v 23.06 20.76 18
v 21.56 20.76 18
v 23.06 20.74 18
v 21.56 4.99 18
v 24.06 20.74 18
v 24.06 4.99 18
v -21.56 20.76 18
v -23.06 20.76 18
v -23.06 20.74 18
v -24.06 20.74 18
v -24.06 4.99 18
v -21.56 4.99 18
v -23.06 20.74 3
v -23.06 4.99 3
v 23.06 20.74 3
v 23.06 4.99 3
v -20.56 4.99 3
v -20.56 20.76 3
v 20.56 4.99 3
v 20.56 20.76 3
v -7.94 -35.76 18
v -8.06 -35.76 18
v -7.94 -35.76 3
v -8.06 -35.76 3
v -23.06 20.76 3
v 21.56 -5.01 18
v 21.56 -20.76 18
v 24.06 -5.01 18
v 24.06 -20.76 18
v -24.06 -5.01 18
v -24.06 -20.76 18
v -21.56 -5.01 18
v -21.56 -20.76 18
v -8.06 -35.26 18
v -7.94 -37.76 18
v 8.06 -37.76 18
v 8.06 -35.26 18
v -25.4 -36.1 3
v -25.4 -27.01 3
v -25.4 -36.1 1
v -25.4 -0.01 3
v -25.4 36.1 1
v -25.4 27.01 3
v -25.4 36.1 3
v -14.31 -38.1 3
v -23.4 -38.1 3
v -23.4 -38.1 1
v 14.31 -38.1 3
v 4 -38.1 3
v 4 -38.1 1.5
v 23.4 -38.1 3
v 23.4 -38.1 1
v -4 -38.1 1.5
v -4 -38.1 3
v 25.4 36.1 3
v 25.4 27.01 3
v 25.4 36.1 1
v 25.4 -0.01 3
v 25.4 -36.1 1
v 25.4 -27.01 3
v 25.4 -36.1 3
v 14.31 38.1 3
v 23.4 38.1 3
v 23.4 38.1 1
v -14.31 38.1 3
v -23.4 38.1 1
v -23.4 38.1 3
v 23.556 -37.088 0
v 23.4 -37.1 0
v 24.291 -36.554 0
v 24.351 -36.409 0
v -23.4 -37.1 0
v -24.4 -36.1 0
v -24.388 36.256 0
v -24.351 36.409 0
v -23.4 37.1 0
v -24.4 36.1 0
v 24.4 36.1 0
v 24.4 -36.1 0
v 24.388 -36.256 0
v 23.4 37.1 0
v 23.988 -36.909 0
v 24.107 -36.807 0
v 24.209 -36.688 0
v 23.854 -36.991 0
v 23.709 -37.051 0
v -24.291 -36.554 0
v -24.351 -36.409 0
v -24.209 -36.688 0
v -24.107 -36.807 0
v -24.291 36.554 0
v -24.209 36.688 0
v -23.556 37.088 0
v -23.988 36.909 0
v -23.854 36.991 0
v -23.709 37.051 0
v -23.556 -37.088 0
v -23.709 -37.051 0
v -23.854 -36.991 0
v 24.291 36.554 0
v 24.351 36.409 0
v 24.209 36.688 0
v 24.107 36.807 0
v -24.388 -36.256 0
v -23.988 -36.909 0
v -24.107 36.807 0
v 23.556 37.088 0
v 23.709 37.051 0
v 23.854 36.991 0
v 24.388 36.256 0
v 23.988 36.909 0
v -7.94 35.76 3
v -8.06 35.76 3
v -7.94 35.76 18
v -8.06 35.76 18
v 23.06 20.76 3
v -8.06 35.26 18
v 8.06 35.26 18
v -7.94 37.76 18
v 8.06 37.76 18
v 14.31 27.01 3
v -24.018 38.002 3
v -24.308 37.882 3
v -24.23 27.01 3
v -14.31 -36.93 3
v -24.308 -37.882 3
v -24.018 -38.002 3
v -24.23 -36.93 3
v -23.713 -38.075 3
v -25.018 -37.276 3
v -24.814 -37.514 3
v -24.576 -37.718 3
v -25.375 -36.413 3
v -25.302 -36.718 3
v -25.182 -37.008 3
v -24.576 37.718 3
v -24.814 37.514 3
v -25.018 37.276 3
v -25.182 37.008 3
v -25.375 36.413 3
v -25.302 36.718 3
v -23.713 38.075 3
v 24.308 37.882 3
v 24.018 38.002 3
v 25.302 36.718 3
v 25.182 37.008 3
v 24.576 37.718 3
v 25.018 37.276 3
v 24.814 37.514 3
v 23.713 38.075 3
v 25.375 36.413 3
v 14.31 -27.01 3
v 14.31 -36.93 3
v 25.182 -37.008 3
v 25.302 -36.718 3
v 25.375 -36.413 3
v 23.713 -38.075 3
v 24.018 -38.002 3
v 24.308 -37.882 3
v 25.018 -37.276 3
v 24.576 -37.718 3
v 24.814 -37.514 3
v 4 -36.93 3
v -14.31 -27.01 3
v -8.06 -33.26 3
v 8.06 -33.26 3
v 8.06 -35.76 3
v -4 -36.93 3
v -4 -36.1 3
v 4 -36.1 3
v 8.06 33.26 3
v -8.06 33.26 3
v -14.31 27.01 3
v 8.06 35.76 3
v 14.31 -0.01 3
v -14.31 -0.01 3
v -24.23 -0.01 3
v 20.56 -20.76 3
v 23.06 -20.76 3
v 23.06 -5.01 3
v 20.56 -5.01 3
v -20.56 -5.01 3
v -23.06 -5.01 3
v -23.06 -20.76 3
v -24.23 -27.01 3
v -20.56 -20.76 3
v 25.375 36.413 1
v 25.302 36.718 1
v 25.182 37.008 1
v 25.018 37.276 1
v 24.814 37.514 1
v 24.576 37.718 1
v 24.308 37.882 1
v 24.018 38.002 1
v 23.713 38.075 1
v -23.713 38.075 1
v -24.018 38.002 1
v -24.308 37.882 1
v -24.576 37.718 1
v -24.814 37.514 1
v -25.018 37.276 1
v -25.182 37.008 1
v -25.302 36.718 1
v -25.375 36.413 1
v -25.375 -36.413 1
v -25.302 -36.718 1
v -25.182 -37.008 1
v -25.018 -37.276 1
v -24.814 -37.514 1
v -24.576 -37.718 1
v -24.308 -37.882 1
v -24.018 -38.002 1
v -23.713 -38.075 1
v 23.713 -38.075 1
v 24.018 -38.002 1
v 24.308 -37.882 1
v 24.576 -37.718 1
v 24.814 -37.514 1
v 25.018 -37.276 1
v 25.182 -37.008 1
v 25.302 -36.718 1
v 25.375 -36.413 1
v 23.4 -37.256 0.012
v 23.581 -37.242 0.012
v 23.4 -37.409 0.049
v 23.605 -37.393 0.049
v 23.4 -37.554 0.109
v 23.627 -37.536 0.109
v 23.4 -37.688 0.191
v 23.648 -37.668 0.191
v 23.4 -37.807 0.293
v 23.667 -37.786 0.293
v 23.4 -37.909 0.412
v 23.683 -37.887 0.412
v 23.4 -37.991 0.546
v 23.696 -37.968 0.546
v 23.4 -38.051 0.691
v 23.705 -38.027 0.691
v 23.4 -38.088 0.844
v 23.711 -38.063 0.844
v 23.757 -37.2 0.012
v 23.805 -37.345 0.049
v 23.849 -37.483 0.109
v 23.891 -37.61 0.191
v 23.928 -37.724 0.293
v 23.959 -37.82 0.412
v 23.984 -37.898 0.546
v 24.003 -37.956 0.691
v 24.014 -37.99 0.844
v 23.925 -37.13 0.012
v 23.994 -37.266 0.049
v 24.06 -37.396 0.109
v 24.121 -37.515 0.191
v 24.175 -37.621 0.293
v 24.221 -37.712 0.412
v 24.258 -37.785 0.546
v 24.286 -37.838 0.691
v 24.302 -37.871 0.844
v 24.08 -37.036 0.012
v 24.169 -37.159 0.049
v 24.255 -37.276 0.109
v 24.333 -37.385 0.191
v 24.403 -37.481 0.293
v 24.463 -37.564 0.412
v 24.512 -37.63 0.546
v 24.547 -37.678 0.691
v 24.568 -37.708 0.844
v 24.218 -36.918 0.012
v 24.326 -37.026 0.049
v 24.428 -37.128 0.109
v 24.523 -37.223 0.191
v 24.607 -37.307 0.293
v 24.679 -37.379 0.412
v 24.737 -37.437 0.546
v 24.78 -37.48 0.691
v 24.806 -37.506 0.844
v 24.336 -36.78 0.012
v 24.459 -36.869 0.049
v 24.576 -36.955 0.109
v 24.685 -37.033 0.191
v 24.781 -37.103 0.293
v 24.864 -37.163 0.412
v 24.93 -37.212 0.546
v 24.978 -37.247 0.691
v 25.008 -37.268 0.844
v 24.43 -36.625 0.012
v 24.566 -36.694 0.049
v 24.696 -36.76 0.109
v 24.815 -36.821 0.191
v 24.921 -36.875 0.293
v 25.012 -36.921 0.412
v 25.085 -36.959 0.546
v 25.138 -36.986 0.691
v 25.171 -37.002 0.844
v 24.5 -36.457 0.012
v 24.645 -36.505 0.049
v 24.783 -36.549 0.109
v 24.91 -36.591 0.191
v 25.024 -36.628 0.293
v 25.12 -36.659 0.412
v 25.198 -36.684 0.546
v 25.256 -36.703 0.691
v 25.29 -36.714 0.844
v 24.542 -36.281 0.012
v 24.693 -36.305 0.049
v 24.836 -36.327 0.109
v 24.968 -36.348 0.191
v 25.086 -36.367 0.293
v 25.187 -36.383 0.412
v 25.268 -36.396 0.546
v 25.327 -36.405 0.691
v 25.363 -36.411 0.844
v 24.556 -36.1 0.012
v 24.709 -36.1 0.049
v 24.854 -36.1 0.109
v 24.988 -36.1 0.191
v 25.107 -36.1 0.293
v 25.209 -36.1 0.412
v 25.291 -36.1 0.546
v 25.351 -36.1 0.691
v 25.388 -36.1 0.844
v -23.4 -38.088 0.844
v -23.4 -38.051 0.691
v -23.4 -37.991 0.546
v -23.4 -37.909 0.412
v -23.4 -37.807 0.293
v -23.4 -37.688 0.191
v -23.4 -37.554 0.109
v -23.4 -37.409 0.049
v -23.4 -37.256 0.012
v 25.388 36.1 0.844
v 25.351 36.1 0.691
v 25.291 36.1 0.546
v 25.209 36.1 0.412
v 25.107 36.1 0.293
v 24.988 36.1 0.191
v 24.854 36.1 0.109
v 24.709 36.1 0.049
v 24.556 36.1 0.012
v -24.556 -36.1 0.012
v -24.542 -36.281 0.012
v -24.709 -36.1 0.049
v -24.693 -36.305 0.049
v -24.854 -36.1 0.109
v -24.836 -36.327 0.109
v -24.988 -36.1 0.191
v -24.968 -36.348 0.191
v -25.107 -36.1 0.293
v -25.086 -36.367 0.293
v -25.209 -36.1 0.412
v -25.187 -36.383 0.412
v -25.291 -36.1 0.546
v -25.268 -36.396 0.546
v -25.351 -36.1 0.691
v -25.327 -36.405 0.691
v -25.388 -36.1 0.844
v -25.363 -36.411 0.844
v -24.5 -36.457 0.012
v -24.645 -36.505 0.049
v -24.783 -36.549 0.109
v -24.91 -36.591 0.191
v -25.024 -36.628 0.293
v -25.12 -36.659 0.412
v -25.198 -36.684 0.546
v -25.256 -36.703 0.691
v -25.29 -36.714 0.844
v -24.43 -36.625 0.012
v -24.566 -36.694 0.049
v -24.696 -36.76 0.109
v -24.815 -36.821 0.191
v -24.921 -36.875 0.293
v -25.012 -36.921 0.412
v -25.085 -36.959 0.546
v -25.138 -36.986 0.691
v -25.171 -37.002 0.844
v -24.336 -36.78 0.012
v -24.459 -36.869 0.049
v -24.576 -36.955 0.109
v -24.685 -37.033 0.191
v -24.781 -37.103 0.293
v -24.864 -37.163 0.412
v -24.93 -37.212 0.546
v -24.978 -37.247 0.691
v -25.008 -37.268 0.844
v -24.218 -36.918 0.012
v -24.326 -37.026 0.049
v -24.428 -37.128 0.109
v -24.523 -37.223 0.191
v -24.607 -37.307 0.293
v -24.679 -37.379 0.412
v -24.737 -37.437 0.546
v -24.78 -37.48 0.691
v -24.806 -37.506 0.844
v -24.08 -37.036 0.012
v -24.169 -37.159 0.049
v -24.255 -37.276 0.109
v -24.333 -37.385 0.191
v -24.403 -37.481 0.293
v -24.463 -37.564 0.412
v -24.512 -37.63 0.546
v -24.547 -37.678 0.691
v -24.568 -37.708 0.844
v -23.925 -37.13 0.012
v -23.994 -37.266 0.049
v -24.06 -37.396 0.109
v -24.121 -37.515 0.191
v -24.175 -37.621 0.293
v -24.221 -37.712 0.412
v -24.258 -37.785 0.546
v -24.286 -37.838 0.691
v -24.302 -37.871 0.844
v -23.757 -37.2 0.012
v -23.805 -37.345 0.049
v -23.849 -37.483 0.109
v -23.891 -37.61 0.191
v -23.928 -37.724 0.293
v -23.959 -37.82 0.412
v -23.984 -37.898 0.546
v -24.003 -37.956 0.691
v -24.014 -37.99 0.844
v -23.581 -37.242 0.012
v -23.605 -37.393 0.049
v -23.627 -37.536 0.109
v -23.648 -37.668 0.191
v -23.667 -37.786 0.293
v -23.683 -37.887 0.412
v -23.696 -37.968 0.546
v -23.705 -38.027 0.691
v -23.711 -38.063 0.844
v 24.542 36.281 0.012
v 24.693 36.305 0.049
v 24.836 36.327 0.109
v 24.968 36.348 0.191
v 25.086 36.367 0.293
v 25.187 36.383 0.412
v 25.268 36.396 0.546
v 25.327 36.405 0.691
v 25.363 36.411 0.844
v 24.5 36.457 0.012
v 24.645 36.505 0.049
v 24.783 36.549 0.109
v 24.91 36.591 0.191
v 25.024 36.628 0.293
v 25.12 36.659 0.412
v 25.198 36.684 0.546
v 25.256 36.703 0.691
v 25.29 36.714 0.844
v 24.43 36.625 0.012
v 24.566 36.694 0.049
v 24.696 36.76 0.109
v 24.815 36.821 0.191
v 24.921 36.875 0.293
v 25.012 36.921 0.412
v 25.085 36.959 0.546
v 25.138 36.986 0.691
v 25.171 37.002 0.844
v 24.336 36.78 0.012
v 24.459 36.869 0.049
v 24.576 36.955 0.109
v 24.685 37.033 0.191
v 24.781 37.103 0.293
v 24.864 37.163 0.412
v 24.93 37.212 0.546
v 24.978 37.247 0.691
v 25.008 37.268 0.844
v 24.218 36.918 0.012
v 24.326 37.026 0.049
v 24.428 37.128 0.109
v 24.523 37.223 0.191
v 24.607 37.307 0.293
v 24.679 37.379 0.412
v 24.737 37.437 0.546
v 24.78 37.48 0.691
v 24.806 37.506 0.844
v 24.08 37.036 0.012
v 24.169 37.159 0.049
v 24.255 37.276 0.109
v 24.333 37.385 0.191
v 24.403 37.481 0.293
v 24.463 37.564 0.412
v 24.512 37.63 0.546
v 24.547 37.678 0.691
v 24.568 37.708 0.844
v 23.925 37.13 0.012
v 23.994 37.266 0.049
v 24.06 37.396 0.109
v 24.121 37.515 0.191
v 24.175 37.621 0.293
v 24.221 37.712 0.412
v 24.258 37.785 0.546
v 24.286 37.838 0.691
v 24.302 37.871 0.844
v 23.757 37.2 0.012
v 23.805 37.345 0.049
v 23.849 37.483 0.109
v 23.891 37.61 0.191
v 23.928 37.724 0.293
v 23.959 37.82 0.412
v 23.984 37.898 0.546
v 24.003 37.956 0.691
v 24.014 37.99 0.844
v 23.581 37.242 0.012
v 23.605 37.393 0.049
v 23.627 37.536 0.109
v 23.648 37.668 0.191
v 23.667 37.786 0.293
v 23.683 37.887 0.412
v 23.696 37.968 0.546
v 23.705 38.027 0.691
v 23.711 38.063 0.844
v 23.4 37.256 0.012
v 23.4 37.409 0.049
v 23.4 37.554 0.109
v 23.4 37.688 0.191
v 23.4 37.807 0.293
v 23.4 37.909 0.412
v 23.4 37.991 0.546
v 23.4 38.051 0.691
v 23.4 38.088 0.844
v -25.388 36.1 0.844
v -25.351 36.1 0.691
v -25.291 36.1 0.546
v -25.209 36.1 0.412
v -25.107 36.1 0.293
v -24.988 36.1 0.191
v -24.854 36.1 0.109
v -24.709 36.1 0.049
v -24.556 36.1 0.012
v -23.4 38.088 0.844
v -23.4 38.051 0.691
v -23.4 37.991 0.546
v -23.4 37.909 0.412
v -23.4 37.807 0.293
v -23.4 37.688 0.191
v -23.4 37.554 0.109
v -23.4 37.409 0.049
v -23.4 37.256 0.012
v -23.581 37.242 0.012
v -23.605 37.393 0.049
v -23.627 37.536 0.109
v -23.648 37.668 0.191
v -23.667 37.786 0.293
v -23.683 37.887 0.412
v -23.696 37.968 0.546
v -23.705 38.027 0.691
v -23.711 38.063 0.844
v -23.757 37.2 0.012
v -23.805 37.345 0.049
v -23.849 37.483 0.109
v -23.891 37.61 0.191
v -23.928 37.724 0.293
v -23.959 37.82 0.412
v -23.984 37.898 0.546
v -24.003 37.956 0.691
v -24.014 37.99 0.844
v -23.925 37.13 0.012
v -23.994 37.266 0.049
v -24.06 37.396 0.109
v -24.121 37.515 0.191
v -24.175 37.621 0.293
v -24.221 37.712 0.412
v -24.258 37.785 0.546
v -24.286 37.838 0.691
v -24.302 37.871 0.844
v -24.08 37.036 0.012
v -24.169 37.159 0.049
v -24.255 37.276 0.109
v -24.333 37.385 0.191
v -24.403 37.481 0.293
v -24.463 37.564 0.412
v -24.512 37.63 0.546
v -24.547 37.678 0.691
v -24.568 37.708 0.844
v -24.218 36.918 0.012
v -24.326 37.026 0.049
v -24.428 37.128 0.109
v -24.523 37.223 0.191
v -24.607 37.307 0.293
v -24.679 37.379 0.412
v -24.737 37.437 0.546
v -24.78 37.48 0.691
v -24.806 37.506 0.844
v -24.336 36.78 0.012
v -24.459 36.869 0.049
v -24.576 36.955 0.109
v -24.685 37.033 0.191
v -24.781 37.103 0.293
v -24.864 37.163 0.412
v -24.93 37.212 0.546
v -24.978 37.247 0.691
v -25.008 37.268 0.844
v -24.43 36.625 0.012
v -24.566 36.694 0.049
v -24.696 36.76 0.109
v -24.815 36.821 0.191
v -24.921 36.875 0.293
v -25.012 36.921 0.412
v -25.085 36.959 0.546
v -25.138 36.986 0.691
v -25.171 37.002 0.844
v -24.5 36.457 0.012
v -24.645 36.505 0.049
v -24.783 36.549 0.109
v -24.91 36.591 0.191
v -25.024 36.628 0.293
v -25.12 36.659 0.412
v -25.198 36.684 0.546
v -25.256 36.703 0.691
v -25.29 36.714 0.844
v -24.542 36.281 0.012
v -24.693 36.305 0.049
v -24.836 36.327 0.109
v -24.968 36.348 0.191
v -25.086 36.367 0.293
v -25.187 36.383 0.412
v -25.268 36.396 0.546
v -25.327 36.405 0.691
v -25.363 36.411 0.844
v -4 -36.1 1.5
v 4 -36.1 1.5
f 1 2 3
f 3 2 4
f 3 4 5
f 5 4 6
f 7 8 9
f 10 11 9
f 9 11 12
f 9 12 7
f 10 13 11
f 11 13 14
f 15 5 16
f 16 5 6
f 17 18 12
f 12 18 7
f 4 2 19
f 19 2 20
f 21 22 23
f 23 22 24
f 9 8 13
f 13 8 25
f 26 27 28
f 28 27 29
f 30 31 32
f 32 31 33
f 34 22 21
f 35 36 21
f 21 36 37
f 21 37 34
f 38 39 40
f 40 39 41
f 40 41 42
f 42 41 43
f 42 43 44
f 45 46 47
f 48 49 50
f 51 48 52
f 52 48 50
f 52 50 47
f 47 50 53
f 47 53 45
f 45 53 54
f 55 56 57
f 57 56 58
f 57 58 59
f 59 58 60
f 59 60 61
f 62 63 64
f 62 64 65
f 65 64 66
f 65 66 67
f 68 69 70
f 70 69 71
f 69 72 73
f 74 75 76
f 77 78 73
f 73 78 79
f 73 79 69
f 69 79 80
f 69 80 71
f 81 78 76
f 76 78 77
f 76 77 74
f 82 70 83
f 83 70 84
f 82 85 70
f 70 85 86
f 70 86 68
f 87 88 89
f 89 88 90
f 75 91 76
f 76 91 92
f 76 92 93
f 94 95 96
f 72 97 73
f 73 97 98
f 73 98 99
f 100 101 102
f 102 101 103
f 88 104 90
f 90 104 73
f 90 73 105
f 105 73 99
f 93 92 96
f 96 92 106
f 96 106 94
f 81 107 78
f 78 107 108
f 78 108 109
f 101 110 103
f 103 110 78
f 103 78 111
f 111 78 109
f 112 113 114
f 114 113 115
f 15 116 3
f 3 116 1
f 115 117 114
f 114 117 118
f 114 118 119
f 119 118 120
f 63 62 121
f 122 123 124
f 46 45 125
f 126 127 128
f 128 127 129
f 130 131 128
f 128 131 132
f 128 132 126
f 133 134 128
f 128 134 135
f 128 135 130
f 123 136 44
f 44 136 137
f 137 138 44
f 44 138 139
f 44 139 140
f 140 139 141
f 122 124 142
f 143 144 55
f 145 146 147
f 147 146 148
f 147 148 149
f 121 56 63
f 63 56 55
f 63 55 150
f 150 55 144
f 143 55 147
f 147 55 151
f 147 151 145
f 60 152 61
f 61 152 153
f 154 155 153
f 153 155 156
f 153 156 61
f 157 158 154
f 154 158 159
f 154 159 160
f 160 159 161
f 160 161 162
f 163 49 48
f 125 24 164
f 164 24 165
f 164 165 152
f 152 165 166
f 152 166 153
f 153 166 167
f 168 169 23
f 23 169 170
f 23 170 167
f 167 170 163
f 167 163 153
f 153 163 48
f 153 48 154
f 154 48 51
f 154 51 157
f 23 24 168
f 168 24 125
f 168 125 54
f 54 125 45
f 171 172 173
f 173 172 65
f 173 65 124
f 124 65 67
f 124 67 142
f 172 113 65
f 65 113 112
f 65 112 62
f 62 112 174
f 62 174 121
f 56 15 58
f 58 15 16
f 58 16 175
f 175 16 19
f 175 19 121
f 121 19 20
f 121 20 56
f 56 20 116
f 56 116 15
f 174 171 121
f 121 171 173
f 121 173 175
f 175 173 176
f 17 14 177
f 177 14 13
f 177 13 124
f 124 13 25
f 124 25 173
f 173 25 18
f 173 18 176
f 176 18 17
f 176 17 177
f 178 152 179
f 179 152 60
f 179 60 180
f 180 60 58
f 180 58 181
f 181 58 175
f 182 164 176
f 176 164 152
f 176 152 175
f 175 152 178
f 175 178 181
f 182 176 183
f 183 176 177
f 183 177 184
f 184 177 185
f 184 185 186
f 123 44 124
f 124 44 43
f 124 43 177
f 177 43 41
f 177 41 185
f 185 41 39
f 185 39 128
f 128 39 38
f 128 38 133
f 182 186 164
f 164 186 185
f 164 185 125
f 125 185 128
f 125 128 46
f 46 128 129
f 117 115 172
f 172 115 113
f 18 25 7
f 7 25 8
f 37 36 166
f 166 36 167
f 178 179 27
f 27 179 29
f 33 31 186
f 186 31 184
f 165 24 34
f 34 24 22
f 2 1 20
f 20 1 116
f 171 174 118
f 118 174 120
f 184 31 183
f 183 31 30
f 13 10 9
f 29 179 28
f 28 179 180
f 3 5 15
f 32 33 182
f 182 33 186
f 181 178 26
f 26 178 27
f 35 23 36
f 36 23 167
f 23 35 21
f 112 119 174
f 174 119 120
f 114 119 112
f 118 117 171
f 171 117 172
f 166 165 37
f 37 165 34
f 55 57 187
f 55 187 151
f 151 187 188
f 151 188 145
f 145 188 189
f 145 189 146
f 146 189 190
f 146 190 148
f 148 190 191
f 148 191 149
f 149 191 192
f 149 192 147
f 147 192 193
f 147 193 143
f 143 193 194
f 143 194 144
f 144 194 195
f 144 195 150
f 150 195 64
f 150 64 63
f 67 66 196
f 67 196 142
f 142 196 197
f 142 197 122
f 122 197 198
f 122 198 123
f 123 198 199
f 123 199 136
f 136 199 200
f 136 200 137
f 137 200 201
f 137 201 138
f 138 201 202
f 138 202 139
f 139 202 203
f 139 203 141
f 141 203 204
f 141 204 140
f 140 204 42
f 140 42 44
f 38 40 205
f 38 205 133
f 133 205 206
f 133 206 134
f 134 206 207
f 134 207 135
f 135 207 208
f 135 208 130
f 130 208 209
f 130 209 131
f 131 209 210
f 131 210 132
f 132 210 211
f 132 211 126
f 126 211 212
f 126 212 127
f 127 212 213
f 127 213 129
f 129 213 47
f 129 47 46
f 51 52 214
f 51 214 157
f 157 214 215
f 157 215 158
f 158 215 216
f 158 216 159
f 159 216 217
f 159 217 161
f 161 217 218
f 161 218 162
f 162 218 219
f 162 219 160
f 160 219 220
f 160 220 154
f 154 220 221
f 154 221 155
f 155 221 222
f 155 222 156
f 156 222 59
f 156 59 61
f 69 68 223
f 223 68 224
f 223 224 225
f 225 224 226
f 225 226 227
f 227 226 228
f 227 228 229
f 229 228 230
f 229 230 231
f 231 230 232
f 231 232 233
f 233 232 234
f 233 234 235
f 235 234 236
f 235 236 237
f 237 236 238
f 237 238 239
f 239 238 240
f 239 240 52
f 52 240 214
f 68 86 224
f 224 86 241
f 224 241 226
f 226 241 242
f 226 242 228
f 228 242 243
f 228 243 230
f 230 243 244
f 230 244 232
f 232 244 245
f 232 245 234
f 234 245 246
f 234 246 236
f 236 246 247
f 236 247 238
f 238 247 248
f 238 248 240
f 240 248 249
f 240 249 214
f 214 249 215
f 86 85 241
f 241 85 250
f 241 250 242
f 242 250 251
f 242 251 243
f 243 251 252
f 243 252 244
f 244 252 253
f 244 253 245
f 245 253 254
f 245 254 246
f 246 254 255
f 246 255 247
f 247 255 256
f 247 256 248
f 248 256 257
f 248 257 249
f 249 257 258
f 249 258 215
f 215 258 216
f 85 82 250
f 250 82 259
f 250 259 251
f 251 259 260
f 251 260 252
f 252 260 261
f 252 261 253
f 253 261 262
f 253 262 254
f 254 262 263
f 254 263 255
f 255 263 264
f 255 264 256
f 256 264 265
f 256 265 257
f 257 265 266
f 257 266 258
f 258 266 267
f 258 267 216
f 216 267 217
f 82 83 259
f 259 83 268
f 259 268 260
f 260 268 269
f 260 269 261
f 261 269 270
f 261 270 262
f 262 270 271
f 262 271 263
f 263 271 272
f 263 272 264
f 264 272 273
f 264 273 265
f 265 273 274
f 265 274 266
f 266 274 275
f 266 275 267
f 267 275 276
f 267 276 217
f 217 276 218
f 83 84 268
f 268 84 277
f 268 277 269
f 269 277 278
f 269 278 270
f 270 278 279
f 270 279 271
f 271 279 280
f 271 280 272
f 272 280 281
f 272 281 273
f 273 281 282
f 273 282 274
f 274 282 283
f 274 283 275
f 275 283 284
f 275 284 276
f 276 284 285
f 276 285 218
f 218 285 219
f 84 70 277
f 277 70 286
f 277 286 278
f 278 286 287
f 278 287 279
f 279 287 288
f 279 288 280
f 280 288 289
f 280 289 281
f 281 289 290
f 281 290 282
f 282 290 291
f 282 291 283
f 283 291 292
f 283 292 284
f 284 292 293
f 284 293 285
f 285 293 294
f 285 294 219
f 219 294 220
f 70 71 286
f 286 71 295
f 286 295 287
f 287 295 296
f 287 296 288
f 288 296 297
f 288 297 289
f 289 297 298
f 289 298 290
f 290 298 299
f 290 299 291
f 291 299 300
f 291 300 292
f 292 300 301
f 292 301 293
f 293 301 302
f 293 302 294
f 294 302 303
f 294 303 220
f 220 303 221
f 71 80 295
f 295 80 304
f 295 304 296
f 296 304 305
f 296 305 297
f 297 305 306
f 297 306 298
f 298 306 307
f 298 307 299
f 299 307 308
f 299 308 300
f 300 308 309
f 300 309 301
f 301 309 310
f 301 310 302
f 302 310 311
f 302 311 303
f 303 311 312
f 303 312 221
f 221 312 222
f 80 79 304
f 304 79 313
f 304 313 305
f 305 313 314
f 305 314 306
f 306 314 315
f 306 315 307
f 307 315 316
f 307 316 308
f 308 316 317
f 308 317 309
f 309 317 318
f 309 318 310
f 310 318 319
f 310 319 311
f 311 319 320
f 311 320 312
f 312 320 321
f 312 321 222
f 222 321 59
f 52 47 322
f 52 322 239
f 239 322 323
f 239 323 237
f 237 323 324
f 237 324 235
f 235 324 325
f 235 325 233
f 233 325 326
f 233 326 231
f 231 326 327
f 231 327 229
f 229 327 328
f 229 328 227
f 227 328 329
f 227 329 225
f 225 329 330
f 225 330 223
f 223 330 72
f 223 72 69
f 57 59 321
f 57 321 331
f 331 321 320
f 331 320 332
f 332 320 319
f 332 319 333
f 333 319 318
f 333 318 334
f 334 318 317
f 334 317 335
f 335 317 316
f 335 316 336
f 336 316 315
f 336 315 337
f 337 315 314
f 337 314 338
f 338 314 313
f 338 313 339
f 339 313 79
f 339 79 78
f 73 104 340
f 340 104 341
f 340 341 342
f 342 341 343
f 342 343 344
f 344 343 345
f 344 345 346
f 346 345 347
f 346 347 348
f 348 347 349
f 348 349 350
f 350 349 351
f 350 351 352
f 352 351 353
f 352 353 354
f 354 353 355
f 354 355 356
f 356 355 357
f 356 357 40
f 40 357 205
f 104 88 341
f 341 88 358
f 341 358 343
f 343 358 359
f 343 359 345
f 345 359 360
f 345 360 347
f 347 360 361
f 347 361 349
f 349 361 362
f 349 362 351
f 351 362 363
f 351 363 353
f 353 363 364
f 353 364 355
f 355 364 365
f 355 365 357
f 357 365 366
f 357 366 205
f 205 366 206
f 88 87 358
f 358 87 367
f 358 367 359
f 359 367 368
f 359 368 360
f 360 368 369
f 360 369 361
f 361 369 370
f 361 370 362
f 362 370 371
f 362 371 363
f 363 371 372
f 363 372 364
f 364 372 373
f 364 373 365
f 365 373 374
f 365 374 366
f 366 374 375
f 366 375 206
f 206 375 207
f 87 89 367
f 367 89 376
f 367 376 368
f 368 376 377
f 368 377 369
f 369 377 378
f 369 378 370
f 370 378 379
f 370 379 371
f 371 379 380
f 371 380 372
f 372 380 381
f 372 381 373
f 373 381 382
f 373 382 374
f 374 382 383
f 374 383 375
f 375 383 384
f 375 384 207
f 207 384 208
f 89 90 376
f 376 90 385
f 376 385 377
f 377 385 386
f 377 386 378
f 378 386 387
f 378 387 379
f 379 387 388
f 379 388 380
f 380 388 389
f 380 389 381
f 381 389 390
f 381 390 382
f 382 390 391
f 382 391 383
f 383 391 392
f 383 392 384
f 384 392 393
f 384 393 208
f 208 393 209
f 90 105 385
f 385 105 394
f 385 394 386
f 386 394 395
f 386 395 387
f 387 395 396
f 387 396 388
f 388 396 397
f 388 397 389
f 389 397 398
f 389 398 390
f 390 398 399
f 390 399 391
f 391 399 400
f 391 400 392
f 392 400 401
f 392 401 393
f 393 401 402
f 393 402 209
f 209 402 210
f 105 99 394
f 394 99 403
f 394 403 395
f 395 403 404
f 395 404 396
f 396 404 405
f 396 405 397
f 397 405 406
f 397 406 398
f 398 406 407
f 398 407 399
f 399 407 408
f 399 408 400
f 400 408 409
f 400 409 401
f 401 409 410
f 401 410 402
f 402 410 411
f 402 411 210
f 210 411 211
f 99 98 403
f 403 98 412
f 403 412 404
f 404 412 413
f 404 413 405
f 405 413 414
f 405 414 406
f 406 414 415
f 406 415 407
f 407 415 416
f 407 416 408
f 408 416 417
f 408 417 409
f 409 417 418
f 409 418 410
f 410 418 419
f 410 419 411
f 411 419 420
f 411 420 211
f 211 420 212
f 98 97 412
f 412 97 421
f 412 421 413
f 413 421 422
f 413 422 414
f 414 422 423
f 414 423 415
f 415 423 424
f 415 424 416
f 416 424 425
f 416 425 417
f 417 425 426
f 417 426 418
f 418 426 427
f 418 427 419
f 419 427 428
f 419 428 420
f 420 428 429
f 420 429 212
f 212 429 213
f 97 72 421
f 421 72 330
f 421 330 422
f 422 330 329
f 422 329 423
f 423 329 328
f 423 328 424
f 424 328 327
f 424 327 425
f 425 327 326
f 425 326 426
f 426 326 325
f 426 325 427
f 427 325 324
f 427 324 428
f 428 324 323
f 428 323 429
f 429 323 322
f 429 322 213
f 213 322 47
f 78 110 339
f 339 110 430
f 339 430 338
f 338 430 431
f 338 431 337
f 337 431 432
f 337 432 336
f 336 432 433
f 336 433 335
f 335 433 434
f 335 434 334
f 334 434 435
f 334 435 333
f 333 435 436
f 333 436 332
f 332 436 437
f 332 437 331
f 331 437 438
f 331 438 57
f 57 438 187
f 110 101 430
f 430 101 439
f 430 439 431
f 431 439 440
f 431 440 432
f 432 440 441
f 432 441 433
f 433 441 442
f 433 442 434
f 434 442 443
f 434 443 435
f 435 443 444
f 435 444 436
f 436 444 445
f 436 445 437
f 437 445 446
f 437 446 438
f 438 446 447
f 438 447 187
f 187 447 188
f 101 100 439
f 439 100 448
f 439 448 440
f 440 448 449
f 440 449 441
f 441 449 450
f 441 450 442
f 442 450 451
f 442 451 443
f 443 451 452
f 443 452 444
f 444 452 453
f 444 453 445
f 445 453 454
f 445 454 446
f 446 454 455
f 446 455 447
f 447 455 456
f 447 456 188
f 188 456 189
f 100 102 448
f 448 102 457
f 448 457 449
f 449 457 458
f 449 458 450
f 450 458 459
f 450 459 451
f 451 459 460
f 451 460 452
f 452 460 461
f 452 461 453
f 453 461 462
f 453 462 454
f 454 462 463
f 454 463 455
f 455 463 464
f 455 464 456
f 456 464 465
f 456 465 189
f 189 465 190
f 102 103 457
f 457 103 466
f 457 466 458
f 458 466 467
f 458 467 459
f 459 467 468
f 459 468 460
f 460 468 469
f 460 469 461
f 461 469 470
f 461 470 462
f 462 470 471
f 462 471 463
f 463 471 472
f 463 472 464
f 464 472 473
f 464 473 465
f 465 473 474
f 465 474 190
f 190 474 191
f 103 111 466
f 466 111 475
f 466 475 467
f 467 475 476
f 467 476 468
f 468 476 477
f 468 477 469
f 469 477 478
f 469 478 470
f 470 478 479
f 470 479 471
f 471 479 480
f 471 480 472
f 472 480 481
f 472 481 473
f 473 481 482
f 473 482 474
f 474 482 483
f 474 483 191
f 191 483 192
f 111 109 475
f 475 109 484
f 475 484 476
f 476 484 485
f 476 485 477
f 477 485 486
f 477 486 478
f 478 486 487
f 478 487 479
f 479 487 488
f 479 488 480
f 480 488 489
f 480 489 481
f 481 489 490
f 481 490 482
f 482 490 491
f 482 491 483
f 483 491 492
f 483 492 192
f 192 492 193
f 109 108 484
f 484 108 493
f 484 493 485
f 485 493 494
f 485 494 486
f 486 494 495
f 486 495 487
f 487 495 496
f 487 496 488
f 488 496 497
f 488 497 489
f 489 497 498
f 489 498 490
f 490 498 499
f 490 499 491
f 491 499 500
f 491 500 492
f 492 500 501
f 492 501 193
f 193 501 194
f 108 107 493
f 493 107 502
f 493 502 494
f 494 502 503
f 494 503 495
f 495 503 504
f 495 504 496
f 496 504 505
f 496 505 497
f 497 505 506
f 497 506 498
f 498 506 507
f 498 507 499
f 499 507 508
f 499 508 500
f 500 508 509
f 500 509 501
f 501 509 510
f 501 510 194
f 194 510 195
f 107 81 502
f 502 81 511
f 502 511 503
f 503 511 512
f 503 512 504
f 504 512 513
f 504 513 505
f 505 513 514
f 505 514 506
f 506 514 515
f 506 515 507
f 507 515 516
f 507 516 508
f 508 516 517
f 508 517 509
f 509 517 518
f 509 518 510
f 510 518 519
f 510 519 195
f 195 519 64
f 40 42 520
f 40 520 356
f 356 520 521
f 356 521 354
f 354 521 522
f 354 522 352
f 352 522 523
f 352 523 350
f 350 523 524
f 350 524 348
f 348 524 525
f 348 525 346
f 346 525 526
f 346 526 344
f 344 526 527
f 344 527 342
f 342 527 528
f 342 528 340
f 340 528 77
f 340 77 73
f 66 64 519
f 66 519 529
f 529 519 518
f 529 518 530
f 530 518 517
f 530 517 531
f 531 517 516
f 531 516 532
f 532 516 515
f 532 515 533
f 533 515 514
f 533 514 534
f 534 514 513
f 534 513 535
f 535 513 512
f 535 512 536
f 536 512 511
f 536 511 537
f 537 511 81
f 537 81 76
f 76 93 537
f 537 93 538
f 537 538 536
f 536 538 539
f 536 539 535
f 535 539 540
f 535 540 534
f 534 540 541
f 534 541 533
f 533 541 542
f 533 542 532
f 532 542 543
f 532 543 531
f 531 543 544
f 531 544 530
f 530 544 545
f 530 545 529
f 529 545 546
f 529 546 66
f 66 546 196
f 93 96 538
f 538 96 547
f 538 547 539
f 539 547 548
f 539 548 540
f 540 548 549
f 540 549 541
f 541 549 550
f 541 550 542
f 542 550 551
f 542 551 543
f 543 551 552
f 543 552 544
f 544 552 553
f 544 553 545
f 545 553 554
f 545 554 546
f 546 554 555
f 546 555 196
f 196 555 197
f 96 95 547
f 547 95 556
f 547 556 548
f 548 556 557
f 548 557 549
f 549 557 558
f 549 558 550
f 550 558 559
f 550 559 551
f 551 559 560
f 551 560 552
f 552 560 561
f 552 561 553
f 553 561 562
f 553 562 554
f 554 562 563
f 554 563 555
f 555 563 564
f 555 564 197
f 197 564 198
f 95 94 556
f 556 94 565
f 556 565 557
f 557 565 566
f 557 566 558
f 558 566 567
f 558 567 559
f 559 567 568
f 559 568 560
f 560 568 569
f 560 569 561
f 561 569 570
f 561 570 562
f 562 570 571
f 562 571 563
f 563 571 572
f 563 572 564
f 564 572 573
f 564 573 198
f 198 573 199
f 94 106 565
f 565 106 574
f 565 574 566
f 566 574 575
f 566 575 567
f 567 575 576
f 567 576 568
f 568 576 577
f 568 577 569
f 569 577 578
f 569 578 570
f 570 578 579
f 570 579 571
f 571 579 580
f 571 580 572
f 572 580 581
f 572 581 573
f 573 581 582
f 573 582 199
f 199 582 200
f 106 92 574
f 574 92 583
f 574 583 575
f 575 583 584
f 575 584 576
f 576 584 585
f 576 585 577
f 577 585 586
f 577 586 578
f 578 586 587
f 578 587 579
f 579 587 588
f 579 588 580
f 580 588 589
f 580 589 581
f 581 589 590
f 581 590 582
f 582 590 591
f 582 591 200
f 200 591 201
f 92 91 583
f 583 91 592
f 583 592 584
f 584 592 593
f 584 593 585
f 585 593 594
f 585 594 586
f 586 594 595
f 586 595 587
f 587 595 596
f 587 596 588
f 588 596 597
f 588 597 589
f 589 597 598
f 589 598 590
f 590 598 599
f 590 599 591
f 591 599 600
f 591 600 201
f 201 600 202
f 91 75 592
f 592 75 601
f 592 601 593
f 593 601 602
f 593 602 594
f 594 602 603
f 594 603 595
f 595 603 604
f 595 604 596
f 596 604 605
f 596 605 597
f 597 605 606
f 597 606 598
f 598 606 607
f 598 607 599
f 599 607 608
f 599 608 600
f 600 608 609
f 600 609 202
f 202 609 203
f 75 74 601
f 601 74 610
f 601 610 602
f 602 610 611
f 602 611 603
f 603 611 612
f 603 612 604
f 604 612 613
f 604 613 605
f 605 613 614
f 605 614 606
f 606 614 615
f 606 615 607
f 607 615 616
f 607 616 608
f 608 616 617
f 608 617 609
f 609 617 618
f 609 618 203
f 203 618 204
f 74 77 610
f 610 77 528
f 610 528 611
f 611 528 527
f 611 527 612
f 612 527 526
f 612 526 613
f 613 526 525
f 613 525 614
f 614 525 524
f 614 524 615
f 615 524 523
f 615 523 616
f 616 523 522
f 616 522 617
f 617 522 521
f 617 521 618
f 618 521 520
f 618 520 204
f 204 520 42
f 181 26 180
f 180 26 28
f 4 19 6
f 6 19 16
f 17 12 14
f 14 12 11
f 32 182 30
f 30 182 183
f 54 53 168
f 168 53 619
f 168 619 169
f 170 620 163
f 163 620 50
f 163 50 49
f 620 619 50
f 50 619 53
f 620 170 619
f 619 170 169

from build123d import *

# Parameters (mm, degrees)
CROQUIS1_W              = 50.8
CROQUIS1_H              = 76.2
SALIENTE_EXTRUIR1_DEPTH = 18
CROQUIS2_W              = 50.8
CROQUIS2_H              = 76.2
CROQUIS2_W_2            = 46.12
CROQUIS2_H_2            = 71.52
CROQUIS2_W_3            = 38.8
CROQUIS2_H_3            = 64.2
CORTAR_EXTRUIR1_DEPTH   = 15
CORTAR_EXTRUIR8_DEPTH   = 15
SALIENTE_EXTRUIR3_DEPTH = 41.5
CORTAR_EXTRUIR9_DEPTH   = 51.5
CORTAR_EXTRUIR10_DEPTH  = 51.5
SALIENTE_EXTRUIR4_DEPTH = 16
CORTAR_EXTRUIR11_DEPTH  = 16.5
REDONDEO3_R             = 2
REDONDEO4_R             = 1
CROQUIS15_W             = 48.12
CROQUIS15_H             = 10
CORTAR_EXTRUIR12_DEPTH  = 15
CROQUIS16_W             = 8
CROQUIS16_H             = 1.5
CORTAR_EXTRUIR13_DEPTH  = 2


with BuildPart() as part:
    # Croquis1 → Saliente-Extruir1 (new body)
    with BuildSketch(Plane.XY):
        Rectangle(CROQUIS1_W, CROQUIS1_H)
    extrude(amount=SALIENTE_EXTRUIR1_DEPTH)

    # Croquis2 → Cortar-Extruir1 (cut)
    # profile 1 of 2: a face of its own
    with BuildSketch(Plane.XY.offset(18)):
        Rectangle(CROQUIS2_W, CROQUIS2_H)
        Rectangle(CROQUIS2_W_2, CROQUIS2_H_2, mode=Mode.SUBTRACT)
    # profile 2 of 2: a face of its own
    with BuildSketch(Plane.XY.offset(18)):
        Rectangle(CROQUIS2_W_3, CROQUIS2_H_3)
    extrude(amount=-CORTAR_EXTRUIR1_DEPTH, mode=Mode.SUBTRACT)

    # Croquis6 → Cortar-Extruir8 (cut)
    with BuildSketch(Plane.XY.offset(18)):
        Polygon((-23.06, 35.76), (-8.06, 35.76), (-8.06, 32.1), (-19.4, 32.1), (-19.4, 20.76), (-23.06, 20.76), align=None)
        Polygon((23.06, 35.76), (8.06, 35.76), (8.06, 32.1), (19.4, 32.1), (19.4, 20.76), (23.06, 20.76), align=None)
        Polygon((-23.06, -35.76), (-23.06, -20.76), (-19.4, -20.76), (-19.4, -32.1), (-8.06, -32.1), (-8.06, -35.76), align=None)
        Polygon((23.06, -35.76), (8.06, -35.76), (8.06, -32.1), (19.4, -32.1), (19.4, -20.76), (23.06, -20.76), align=None)
    extrude(amount=-CORTAR_EXTRUIR8_DEPTH, mode=Mode.SUBTRACT)

    # Croquis10 → Saliente-Extruir3 (add)
    with BuildSketch(Plane(origin=(0, -20.76, 0), x_dir=(-1, 0, 0), z_dir=(0, -1, 0))):
        Polygon((23.06, -18), (24.06, -18), (23.06, -3), align=None)
        Polygon((-23.06, -18), (-24.06, -18), (-23.06, -3), align=None)
    extrude(amount=-SALIENTE_EXTRUIR3_DEPTH)

    # Croquis11 → Cortar-Extruir9 (cut)
    with BuildSketch(Plane.XZ.offset(20.76)):
        Polygon((-19.4, 18), (-21.56, 18), (-20.56, 3), (-19.4, 3), align=None)
    extrude(amount=-CORTAR_EXTRUIR9_DEPTH, mode=Mode.SUBTRACT)

    # Croquis12 → Cortar-Extruir10 (cut)
    with BuildSketch(Plane.XZ.offset(20.76)):
        Polygon((19.4, 18), (19.4, 3), (20.56, 3), (21.56, 18), align=None)
    extrude(amount=-CORTAR_EXTRUIR10_DEPTH, mode=Mode.SUBTRACT)

    # Croquis13 → Saliente-Extruir4 (add)
    with BuildSketch(Plane(origin=(8.06, 0, 0), x_dir=(0, 0, -1), z_dir=(1, 0, 0))):
        Polygon((-18, -35.76), (-18, -37.76), (-3, -35.76), align=None)
        Polygon((-18, 35.76), (-18, 37.76), (-3, 35.76), align=None)
    extrude(amount=-SALIENTE_EXTRUIR4_DEPTH)

    # Croquis14 → Cortar-Extruir11 (cut)
    with BuildSketch(Plane(origin=(8.06, 0, 0), x_dir=(0, 0, -1), z_dir=(1, 0, 0))):
        Polygon((-3, -32.1), (-18, -32.1), (-18, -35.26), (-3, -33.26), align=None)
        Polygon((-18, 32.1), (-18, 35.26), (-3, 33.26), (-3, 32.1), align=None)
    extrude(amount=-CORTAR_EXTRUIR11_DEPTH, mode=Mode.SUBTRACT)

    # Redondeo3
    redondeo3_edges = [part.edges().sort_by_distance(p)[0] for p in [
        (-25.4, 38.1, 1.5),
        (25.4, 38.1, 1.5),
        (25.4, -38.1, 1.5),
        (-25.4, -38.1, 1.5),
    ]]
    fillet(redondeo3_edges, radius=REDONDEO3_R)

    # Redondeo4
    redondeo4_edges = [part.edges().sort_by_distance(p)[0] for p in [
        (0, 38.1, 0),
        (-25.4, 0, 0),
        (25.4, 0, 0),
        (0, -38.1, 0),
        (24.814213562, -37.514213562, 0),
        (-24.814213562, -37.514213562, 0),
        (-24.814213562, 37.514213562, 0),
        (24.814213562, 37.514213562, 0),
    ]]
    fillet(redondeo4_edges, radius=REDONDEO4_R)

    # Croquis15 → Cortar-Extruir12 (cut)
    with BuildSketch(Plane.XY.offset(18)):
        with Locations((0, -0.01)):
            Rectangle(CROQUIS15_W, CROQUIS15_H)
    extrude(amount=-CORTAR_EXTRUIR12_DEPTH, mode=Mode.SUBTRACT)

    # Croquis16 → Cortar-Extruir13 (cut)
    with BuildSketch(Plane.XZ.offset(38.1)):
        with Locations((0, 2.25)):
            Rectangle(CROQUIS16_W, CROQUIS16_H)
    extrude(amount=-CORTAR_EXTRUIR13_DEPTH, mode=Mode.SUBTRACT)


solid = part.part
